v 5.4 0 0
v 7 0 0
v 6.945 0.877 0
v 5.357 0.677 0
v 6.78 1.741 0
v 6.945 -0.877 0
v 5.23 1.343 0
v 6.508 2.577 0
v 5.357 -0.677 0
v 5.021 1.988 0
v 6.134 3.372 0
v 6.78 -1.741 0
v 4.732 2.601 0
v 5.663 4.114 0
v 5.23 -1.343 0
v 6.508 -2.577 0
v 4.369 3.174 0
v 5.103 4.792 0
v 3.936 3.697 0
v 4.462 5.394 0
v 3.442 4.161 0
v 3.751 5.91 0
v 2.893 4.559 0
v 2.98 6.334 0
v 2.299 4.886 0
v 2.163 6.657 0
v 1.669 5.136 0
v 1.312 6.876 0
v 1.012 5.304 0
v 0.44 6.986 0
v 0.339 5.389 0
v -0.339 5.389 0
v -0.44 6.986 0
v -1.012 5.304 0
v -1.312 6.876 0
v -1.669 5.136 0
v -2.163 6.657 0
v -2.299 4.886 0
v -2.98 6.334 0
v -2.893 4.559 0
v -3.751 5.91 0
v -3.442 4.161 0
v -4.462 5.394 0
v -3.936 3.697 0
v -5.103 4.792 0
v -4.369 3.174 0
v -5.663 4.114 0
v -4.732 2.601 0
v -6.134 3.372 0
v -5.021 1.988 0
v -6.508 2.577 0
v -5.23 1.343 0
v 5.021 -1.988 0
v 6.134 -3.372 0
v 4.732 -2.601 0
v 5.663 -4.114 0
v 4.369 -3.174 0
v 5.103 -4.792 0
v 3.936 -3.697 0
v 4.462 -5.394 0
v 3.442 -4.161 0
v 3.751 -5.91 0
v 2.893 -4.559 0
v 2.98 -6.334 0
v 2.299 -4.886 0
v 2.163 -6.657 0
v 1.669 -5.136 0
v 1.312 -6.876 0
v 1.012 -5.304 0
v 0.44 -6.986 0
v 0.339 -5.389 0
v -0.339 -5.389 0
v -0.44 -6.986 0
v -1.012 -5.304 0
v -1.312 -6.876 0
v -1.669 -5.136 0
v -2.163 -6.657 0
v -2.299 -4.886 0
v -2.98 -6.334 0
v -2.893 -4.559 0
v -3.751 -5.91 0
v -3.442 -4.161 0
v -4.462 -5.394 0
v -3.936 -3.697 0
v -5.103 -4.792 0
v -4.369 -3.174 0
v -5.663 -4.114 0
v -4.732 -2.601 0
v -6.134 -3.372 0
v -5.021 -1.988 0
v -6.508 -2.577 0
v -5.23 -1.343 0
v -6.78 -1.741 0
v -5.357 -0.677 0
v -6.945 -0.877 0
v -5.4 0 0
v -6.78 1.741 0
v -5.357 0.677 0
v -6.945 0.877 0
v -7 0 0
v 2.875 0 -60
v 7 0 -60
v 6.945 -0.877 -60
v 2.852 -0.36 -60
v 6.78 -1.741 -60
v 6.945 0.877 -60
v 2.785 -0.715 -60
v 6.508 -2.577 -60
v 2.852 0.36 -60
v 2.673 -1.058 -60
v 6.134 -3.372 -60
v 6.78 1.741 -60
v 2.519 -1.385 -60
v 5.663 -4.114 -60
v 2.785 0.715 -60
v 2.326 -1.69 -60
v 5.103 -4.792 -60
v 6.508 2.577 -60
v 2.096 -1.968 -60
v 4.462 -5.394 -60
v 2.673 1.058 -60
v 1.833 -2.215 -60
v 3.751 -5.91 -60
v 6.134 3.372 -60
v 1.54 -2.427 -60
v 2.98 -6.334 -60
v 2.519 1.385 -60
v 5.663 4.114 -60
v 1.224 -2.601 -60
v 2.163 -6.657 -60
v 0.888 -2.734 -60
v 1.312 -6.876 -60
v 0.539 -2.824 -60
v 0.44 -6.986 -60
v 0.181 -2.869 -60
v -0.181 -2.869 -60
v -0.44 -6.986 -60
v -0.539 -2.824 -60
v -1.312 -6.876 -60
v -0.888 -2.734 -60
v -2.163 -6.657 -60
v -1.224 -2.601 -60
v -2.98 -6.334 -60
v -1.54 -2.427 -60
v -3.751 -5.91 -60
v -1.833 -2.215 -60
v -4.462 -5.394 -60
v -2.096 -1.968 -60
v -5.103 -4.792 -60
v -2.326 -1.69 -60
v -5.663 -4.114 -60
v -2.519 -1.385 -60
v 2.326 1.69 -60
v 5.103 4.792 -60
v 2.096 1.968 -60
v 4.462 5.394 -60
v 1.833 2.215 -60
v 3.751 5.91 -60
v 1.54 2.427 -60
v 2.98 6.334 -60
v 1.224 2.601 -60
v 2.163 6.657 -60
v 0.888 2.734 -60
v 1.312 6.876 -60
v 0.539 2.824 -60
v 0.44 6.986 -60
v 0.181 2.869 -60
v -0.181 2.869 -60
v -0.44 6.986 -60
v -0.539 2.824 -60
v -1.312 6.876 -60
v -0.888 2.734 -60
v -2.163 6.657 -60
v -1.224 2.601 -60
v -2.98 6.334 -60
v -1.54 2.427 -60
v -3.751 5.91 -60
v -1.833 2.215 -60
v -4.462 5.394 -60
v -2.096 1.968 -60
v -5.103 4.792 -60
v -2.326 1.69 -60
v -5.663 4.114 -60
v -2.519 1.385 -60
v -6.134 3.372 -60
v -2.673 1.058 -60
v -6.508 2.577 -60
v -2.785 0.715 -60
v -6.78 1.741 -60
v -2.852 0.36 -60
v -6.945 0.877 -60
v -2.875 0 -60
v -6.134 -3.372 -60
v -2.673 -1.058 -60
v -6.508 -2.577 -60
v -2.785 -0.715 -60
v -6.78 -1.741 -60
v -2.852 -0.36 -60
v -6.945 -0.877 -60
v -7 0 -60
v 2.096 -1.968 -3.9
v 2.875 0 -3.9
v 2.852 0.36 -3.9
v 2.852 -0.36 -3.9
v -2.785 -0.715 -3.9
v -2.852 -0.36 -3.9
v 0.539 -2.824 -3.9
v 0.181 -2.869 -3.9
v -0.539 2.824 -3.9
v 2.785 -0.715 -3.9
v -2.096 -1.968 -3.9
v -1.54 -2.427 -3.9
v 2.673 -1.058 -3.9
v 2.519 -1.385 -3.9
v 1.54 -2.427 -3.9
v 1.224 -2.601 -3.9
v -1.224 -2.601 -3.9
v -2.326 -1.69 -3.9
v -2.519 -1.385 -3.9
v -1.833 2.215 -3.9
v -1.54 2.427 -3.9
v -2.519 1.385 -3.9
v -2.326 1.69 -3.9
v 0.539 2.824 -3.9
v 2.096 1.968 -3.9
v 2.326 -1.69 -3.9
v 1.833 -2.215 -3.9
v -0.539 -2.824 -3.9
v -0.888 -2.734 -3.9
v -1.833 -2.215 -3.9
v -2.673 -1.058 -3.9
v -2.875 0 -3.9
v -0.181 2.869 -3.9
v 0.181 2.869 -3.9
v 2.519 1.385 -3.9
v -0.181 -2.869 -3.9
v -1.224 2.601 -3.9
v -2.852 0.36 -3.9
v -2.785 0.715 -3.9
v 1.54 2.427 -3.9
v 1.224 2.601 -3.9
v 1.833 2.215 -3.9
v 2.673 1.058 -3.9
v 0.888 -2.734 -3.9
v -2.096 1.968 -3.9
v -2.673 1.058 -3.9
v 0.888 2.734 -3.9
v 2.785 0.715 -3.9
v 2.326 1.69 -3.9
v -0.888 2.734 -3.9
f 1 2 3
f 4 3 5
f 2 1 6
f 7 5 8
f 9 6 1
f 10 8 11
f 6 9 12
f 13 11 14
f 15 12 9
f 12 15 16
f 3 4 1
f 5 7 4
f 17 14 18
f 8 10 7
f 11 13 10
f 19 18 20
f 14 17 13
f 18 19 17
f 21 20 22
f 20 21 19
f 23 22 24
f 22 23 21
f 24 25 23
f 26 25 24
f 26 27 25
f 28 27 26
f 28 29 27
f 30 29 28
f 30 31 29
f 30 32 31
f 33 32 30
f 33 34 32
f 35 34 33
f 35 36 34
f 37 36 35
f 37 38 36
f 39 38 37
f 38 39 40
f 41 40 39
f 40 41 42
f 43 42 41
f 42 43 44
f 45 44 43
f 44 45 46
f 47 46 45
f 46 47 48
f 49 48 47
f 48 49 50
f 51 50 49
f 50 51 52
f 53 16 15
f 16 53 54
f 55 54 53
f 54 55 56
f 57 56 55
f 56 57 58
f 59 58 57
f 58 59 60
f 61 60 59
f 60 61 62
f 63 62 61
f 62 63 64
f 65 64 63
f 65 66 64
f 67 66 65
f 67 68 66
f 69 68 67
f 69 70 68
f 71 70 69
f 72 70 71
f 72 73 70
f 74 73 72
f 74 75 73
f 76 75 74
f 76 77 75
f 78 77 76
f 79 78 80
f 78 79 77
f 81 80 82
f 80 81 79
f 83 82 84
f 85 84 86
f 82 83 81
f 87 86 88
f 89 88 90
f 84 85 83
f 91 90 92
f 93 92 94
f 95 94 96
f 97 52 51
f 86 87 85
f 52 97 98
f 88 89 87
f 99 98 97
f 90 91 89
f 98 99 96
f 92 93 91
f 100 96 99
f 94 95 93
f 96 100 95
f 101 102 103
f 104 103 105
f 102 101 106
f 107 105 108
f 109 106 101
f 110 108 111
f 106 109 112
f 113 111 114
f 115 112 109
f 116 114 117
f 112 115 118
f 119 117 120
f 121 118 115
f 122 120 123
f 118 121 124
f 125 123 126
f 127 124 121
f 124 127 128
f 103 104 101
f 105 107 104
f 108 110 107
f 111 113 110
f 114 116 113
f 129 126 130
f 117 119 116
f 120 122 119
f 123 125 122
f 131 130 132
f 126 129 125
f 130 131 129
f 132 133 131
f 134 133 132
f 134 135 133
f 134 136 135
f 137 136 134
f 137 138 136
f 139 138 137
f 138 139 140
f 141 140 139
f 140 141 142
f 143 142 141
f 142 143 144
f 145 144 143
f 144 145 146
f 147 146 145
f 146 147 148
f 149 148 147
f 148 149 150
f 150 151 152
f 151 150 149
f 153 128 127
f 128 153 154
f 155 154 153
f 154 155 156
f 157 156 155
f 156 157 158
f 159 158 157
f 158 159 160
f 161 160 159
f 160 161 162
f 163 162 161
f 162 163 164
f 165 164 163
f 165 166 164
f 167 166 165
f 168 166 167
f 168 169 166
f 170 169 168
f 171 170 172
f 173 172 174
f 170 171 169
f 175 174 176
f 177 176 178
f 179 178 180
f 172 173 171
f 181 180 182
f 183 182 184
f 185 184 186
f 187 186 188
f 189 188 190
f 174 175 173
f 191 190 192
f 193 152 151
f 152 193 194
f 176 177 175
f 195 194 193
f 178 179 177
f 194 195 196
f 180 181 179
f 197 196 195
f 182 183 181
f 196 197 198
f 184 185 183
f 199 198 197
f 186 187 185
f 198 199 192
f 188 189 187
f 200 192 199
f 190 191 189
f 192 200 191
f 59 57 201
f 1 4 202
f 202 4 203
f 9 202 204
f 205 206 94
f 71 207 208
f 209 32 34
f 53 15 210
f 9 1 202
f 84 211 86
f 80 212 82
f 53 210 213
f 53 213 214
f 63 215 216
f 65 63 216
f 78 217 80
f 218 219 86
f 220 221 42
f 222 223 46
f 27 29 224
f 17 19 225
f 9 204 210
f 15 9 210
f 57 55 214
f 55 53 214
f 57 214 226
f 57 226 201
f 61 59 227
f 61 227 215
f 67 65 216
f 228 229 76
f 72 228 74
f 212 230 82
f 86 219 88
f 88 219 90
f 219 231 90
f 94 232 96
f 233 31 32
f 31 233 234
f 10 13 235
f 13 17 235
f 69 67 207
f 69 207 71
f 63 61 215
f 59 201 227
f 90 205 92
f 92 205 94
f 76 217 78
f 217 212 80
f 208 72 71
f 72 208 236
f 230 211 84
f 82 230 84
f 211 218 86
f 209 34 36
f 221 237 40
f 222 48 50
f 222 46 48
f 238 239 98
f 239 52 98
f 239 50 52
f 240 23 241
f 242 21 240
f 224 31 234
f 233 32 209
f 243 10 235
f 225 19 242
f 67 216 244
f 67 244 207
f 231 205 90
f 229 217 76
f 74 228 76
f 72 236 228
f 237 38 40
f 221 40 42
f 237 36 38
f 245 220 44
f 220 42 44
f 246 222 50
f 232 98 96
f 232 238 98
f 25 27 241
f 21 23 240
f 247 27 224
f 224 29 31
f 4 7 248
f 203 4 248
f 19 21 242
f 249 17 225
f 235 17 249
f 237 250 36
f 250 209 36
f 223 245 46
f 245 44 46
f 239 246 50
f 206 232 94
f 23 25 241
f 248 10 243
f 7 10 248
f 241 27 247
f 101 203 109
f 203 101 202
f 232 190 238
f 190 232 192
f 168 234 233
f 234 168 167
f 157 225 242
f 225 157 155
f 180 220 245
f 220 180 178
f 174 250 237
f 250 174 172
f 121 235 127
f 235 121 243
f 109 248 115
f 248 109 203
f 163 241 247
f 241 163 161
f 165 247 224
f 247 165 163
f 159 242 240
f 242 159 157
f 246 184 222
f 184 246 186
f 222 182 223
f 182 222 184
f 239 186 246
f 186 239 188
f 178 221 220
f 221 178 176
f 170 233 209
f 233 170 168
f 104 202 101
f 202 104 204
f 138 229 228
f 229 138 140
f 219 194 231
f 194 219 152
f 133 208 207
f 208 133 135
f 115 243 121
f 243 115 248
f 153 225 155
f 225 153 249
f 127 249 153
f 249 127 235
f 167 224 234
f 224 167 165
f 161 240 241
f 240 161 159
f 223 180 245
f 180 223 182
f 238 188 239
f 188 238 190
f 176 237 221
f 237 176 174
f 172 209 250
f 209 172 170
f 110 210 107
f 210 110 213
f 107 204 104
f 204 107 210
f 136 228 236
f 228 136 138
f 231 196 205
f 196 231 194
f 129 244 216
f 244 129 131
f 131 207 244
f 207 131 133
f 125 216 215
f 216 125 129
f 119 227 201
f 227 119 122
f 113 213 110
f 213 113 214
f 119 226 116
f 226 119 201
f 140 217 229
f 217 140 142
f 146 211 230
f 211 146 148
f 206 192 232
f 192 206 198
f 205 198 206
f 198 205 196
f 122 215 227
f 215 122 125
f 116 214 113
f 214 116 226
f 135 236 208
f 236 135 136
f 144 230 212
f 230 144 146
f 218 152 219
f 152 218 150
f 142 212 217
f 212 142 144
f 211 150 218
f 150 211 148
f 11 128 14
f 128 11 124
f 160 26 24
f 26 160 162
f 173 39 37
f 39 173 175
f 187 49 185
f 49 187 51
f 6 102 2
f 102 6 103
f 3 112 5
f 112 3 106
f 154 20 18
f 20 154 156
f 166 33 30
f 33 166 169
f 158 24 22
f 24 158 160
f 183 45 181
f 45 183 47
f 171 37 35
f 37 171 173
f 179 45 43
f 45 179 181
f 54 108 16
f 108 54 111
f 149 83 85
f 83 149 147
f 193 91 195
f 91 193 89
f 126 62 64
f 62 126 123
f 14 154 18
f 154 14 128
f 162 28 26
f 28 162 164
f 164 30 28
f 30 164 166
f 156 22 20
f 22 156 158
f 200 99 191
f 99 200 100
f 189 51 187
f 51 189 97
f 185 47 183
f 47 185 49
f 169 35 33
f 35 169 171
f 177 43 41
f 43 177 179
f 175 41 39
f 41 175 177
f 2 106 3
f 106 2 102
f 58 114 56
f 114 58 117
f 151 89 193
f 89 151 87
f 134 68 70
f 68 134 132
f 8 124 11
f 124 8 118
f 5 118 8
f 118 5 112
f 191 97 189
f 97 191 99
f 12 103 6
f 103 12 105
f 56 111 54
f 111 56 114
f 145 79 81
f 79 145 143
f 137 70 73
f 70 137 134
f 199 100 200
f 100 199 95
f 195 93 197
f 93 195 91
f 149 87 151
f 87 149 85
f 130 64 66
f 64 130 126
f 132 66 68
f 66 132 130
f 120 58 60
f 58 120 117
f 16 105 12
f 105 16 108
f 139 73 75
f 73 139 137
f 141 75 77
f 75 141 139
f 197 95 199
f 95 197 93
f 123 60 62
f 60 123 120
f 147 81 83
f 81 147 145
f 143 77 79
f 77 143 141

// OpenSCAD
$fn = 50;


difference() {
	union() {
		translate(v = [0, 0, -60.0000000000]) {
			cylinder(h = 60, r = 7.0000000000);
		}
		cylinder(h = 0, r = 10.0000000000);
	}
	union() {
		translate(v = [0, 0, 0]) {
			rotate(a = [0, 0, 0]) {
				difference() {
					union() {
						#translate(v = [0, 0, -60.0000000000]) {
							cylinder(h = 60, r = 2.6000000000);
						}
						#translate(v = [0, 0, -3.9000000000]) {
							cylinder(h = 3.9000000000, r = 7.0000000000, r1 = 2.8750000000, r2 = 5.4000000000);
						}
						#translate(v = [0, 0, -60.0000000000]) {
							cylinder(h = 60, r = 2.8750000000);
						}
						#translate(v = [0, 0, -60.0000000000]) {
							cylinder(h = 60, r = 2.6000000000);
						}
					}
					union();
				}
			}
		}
	}
}
